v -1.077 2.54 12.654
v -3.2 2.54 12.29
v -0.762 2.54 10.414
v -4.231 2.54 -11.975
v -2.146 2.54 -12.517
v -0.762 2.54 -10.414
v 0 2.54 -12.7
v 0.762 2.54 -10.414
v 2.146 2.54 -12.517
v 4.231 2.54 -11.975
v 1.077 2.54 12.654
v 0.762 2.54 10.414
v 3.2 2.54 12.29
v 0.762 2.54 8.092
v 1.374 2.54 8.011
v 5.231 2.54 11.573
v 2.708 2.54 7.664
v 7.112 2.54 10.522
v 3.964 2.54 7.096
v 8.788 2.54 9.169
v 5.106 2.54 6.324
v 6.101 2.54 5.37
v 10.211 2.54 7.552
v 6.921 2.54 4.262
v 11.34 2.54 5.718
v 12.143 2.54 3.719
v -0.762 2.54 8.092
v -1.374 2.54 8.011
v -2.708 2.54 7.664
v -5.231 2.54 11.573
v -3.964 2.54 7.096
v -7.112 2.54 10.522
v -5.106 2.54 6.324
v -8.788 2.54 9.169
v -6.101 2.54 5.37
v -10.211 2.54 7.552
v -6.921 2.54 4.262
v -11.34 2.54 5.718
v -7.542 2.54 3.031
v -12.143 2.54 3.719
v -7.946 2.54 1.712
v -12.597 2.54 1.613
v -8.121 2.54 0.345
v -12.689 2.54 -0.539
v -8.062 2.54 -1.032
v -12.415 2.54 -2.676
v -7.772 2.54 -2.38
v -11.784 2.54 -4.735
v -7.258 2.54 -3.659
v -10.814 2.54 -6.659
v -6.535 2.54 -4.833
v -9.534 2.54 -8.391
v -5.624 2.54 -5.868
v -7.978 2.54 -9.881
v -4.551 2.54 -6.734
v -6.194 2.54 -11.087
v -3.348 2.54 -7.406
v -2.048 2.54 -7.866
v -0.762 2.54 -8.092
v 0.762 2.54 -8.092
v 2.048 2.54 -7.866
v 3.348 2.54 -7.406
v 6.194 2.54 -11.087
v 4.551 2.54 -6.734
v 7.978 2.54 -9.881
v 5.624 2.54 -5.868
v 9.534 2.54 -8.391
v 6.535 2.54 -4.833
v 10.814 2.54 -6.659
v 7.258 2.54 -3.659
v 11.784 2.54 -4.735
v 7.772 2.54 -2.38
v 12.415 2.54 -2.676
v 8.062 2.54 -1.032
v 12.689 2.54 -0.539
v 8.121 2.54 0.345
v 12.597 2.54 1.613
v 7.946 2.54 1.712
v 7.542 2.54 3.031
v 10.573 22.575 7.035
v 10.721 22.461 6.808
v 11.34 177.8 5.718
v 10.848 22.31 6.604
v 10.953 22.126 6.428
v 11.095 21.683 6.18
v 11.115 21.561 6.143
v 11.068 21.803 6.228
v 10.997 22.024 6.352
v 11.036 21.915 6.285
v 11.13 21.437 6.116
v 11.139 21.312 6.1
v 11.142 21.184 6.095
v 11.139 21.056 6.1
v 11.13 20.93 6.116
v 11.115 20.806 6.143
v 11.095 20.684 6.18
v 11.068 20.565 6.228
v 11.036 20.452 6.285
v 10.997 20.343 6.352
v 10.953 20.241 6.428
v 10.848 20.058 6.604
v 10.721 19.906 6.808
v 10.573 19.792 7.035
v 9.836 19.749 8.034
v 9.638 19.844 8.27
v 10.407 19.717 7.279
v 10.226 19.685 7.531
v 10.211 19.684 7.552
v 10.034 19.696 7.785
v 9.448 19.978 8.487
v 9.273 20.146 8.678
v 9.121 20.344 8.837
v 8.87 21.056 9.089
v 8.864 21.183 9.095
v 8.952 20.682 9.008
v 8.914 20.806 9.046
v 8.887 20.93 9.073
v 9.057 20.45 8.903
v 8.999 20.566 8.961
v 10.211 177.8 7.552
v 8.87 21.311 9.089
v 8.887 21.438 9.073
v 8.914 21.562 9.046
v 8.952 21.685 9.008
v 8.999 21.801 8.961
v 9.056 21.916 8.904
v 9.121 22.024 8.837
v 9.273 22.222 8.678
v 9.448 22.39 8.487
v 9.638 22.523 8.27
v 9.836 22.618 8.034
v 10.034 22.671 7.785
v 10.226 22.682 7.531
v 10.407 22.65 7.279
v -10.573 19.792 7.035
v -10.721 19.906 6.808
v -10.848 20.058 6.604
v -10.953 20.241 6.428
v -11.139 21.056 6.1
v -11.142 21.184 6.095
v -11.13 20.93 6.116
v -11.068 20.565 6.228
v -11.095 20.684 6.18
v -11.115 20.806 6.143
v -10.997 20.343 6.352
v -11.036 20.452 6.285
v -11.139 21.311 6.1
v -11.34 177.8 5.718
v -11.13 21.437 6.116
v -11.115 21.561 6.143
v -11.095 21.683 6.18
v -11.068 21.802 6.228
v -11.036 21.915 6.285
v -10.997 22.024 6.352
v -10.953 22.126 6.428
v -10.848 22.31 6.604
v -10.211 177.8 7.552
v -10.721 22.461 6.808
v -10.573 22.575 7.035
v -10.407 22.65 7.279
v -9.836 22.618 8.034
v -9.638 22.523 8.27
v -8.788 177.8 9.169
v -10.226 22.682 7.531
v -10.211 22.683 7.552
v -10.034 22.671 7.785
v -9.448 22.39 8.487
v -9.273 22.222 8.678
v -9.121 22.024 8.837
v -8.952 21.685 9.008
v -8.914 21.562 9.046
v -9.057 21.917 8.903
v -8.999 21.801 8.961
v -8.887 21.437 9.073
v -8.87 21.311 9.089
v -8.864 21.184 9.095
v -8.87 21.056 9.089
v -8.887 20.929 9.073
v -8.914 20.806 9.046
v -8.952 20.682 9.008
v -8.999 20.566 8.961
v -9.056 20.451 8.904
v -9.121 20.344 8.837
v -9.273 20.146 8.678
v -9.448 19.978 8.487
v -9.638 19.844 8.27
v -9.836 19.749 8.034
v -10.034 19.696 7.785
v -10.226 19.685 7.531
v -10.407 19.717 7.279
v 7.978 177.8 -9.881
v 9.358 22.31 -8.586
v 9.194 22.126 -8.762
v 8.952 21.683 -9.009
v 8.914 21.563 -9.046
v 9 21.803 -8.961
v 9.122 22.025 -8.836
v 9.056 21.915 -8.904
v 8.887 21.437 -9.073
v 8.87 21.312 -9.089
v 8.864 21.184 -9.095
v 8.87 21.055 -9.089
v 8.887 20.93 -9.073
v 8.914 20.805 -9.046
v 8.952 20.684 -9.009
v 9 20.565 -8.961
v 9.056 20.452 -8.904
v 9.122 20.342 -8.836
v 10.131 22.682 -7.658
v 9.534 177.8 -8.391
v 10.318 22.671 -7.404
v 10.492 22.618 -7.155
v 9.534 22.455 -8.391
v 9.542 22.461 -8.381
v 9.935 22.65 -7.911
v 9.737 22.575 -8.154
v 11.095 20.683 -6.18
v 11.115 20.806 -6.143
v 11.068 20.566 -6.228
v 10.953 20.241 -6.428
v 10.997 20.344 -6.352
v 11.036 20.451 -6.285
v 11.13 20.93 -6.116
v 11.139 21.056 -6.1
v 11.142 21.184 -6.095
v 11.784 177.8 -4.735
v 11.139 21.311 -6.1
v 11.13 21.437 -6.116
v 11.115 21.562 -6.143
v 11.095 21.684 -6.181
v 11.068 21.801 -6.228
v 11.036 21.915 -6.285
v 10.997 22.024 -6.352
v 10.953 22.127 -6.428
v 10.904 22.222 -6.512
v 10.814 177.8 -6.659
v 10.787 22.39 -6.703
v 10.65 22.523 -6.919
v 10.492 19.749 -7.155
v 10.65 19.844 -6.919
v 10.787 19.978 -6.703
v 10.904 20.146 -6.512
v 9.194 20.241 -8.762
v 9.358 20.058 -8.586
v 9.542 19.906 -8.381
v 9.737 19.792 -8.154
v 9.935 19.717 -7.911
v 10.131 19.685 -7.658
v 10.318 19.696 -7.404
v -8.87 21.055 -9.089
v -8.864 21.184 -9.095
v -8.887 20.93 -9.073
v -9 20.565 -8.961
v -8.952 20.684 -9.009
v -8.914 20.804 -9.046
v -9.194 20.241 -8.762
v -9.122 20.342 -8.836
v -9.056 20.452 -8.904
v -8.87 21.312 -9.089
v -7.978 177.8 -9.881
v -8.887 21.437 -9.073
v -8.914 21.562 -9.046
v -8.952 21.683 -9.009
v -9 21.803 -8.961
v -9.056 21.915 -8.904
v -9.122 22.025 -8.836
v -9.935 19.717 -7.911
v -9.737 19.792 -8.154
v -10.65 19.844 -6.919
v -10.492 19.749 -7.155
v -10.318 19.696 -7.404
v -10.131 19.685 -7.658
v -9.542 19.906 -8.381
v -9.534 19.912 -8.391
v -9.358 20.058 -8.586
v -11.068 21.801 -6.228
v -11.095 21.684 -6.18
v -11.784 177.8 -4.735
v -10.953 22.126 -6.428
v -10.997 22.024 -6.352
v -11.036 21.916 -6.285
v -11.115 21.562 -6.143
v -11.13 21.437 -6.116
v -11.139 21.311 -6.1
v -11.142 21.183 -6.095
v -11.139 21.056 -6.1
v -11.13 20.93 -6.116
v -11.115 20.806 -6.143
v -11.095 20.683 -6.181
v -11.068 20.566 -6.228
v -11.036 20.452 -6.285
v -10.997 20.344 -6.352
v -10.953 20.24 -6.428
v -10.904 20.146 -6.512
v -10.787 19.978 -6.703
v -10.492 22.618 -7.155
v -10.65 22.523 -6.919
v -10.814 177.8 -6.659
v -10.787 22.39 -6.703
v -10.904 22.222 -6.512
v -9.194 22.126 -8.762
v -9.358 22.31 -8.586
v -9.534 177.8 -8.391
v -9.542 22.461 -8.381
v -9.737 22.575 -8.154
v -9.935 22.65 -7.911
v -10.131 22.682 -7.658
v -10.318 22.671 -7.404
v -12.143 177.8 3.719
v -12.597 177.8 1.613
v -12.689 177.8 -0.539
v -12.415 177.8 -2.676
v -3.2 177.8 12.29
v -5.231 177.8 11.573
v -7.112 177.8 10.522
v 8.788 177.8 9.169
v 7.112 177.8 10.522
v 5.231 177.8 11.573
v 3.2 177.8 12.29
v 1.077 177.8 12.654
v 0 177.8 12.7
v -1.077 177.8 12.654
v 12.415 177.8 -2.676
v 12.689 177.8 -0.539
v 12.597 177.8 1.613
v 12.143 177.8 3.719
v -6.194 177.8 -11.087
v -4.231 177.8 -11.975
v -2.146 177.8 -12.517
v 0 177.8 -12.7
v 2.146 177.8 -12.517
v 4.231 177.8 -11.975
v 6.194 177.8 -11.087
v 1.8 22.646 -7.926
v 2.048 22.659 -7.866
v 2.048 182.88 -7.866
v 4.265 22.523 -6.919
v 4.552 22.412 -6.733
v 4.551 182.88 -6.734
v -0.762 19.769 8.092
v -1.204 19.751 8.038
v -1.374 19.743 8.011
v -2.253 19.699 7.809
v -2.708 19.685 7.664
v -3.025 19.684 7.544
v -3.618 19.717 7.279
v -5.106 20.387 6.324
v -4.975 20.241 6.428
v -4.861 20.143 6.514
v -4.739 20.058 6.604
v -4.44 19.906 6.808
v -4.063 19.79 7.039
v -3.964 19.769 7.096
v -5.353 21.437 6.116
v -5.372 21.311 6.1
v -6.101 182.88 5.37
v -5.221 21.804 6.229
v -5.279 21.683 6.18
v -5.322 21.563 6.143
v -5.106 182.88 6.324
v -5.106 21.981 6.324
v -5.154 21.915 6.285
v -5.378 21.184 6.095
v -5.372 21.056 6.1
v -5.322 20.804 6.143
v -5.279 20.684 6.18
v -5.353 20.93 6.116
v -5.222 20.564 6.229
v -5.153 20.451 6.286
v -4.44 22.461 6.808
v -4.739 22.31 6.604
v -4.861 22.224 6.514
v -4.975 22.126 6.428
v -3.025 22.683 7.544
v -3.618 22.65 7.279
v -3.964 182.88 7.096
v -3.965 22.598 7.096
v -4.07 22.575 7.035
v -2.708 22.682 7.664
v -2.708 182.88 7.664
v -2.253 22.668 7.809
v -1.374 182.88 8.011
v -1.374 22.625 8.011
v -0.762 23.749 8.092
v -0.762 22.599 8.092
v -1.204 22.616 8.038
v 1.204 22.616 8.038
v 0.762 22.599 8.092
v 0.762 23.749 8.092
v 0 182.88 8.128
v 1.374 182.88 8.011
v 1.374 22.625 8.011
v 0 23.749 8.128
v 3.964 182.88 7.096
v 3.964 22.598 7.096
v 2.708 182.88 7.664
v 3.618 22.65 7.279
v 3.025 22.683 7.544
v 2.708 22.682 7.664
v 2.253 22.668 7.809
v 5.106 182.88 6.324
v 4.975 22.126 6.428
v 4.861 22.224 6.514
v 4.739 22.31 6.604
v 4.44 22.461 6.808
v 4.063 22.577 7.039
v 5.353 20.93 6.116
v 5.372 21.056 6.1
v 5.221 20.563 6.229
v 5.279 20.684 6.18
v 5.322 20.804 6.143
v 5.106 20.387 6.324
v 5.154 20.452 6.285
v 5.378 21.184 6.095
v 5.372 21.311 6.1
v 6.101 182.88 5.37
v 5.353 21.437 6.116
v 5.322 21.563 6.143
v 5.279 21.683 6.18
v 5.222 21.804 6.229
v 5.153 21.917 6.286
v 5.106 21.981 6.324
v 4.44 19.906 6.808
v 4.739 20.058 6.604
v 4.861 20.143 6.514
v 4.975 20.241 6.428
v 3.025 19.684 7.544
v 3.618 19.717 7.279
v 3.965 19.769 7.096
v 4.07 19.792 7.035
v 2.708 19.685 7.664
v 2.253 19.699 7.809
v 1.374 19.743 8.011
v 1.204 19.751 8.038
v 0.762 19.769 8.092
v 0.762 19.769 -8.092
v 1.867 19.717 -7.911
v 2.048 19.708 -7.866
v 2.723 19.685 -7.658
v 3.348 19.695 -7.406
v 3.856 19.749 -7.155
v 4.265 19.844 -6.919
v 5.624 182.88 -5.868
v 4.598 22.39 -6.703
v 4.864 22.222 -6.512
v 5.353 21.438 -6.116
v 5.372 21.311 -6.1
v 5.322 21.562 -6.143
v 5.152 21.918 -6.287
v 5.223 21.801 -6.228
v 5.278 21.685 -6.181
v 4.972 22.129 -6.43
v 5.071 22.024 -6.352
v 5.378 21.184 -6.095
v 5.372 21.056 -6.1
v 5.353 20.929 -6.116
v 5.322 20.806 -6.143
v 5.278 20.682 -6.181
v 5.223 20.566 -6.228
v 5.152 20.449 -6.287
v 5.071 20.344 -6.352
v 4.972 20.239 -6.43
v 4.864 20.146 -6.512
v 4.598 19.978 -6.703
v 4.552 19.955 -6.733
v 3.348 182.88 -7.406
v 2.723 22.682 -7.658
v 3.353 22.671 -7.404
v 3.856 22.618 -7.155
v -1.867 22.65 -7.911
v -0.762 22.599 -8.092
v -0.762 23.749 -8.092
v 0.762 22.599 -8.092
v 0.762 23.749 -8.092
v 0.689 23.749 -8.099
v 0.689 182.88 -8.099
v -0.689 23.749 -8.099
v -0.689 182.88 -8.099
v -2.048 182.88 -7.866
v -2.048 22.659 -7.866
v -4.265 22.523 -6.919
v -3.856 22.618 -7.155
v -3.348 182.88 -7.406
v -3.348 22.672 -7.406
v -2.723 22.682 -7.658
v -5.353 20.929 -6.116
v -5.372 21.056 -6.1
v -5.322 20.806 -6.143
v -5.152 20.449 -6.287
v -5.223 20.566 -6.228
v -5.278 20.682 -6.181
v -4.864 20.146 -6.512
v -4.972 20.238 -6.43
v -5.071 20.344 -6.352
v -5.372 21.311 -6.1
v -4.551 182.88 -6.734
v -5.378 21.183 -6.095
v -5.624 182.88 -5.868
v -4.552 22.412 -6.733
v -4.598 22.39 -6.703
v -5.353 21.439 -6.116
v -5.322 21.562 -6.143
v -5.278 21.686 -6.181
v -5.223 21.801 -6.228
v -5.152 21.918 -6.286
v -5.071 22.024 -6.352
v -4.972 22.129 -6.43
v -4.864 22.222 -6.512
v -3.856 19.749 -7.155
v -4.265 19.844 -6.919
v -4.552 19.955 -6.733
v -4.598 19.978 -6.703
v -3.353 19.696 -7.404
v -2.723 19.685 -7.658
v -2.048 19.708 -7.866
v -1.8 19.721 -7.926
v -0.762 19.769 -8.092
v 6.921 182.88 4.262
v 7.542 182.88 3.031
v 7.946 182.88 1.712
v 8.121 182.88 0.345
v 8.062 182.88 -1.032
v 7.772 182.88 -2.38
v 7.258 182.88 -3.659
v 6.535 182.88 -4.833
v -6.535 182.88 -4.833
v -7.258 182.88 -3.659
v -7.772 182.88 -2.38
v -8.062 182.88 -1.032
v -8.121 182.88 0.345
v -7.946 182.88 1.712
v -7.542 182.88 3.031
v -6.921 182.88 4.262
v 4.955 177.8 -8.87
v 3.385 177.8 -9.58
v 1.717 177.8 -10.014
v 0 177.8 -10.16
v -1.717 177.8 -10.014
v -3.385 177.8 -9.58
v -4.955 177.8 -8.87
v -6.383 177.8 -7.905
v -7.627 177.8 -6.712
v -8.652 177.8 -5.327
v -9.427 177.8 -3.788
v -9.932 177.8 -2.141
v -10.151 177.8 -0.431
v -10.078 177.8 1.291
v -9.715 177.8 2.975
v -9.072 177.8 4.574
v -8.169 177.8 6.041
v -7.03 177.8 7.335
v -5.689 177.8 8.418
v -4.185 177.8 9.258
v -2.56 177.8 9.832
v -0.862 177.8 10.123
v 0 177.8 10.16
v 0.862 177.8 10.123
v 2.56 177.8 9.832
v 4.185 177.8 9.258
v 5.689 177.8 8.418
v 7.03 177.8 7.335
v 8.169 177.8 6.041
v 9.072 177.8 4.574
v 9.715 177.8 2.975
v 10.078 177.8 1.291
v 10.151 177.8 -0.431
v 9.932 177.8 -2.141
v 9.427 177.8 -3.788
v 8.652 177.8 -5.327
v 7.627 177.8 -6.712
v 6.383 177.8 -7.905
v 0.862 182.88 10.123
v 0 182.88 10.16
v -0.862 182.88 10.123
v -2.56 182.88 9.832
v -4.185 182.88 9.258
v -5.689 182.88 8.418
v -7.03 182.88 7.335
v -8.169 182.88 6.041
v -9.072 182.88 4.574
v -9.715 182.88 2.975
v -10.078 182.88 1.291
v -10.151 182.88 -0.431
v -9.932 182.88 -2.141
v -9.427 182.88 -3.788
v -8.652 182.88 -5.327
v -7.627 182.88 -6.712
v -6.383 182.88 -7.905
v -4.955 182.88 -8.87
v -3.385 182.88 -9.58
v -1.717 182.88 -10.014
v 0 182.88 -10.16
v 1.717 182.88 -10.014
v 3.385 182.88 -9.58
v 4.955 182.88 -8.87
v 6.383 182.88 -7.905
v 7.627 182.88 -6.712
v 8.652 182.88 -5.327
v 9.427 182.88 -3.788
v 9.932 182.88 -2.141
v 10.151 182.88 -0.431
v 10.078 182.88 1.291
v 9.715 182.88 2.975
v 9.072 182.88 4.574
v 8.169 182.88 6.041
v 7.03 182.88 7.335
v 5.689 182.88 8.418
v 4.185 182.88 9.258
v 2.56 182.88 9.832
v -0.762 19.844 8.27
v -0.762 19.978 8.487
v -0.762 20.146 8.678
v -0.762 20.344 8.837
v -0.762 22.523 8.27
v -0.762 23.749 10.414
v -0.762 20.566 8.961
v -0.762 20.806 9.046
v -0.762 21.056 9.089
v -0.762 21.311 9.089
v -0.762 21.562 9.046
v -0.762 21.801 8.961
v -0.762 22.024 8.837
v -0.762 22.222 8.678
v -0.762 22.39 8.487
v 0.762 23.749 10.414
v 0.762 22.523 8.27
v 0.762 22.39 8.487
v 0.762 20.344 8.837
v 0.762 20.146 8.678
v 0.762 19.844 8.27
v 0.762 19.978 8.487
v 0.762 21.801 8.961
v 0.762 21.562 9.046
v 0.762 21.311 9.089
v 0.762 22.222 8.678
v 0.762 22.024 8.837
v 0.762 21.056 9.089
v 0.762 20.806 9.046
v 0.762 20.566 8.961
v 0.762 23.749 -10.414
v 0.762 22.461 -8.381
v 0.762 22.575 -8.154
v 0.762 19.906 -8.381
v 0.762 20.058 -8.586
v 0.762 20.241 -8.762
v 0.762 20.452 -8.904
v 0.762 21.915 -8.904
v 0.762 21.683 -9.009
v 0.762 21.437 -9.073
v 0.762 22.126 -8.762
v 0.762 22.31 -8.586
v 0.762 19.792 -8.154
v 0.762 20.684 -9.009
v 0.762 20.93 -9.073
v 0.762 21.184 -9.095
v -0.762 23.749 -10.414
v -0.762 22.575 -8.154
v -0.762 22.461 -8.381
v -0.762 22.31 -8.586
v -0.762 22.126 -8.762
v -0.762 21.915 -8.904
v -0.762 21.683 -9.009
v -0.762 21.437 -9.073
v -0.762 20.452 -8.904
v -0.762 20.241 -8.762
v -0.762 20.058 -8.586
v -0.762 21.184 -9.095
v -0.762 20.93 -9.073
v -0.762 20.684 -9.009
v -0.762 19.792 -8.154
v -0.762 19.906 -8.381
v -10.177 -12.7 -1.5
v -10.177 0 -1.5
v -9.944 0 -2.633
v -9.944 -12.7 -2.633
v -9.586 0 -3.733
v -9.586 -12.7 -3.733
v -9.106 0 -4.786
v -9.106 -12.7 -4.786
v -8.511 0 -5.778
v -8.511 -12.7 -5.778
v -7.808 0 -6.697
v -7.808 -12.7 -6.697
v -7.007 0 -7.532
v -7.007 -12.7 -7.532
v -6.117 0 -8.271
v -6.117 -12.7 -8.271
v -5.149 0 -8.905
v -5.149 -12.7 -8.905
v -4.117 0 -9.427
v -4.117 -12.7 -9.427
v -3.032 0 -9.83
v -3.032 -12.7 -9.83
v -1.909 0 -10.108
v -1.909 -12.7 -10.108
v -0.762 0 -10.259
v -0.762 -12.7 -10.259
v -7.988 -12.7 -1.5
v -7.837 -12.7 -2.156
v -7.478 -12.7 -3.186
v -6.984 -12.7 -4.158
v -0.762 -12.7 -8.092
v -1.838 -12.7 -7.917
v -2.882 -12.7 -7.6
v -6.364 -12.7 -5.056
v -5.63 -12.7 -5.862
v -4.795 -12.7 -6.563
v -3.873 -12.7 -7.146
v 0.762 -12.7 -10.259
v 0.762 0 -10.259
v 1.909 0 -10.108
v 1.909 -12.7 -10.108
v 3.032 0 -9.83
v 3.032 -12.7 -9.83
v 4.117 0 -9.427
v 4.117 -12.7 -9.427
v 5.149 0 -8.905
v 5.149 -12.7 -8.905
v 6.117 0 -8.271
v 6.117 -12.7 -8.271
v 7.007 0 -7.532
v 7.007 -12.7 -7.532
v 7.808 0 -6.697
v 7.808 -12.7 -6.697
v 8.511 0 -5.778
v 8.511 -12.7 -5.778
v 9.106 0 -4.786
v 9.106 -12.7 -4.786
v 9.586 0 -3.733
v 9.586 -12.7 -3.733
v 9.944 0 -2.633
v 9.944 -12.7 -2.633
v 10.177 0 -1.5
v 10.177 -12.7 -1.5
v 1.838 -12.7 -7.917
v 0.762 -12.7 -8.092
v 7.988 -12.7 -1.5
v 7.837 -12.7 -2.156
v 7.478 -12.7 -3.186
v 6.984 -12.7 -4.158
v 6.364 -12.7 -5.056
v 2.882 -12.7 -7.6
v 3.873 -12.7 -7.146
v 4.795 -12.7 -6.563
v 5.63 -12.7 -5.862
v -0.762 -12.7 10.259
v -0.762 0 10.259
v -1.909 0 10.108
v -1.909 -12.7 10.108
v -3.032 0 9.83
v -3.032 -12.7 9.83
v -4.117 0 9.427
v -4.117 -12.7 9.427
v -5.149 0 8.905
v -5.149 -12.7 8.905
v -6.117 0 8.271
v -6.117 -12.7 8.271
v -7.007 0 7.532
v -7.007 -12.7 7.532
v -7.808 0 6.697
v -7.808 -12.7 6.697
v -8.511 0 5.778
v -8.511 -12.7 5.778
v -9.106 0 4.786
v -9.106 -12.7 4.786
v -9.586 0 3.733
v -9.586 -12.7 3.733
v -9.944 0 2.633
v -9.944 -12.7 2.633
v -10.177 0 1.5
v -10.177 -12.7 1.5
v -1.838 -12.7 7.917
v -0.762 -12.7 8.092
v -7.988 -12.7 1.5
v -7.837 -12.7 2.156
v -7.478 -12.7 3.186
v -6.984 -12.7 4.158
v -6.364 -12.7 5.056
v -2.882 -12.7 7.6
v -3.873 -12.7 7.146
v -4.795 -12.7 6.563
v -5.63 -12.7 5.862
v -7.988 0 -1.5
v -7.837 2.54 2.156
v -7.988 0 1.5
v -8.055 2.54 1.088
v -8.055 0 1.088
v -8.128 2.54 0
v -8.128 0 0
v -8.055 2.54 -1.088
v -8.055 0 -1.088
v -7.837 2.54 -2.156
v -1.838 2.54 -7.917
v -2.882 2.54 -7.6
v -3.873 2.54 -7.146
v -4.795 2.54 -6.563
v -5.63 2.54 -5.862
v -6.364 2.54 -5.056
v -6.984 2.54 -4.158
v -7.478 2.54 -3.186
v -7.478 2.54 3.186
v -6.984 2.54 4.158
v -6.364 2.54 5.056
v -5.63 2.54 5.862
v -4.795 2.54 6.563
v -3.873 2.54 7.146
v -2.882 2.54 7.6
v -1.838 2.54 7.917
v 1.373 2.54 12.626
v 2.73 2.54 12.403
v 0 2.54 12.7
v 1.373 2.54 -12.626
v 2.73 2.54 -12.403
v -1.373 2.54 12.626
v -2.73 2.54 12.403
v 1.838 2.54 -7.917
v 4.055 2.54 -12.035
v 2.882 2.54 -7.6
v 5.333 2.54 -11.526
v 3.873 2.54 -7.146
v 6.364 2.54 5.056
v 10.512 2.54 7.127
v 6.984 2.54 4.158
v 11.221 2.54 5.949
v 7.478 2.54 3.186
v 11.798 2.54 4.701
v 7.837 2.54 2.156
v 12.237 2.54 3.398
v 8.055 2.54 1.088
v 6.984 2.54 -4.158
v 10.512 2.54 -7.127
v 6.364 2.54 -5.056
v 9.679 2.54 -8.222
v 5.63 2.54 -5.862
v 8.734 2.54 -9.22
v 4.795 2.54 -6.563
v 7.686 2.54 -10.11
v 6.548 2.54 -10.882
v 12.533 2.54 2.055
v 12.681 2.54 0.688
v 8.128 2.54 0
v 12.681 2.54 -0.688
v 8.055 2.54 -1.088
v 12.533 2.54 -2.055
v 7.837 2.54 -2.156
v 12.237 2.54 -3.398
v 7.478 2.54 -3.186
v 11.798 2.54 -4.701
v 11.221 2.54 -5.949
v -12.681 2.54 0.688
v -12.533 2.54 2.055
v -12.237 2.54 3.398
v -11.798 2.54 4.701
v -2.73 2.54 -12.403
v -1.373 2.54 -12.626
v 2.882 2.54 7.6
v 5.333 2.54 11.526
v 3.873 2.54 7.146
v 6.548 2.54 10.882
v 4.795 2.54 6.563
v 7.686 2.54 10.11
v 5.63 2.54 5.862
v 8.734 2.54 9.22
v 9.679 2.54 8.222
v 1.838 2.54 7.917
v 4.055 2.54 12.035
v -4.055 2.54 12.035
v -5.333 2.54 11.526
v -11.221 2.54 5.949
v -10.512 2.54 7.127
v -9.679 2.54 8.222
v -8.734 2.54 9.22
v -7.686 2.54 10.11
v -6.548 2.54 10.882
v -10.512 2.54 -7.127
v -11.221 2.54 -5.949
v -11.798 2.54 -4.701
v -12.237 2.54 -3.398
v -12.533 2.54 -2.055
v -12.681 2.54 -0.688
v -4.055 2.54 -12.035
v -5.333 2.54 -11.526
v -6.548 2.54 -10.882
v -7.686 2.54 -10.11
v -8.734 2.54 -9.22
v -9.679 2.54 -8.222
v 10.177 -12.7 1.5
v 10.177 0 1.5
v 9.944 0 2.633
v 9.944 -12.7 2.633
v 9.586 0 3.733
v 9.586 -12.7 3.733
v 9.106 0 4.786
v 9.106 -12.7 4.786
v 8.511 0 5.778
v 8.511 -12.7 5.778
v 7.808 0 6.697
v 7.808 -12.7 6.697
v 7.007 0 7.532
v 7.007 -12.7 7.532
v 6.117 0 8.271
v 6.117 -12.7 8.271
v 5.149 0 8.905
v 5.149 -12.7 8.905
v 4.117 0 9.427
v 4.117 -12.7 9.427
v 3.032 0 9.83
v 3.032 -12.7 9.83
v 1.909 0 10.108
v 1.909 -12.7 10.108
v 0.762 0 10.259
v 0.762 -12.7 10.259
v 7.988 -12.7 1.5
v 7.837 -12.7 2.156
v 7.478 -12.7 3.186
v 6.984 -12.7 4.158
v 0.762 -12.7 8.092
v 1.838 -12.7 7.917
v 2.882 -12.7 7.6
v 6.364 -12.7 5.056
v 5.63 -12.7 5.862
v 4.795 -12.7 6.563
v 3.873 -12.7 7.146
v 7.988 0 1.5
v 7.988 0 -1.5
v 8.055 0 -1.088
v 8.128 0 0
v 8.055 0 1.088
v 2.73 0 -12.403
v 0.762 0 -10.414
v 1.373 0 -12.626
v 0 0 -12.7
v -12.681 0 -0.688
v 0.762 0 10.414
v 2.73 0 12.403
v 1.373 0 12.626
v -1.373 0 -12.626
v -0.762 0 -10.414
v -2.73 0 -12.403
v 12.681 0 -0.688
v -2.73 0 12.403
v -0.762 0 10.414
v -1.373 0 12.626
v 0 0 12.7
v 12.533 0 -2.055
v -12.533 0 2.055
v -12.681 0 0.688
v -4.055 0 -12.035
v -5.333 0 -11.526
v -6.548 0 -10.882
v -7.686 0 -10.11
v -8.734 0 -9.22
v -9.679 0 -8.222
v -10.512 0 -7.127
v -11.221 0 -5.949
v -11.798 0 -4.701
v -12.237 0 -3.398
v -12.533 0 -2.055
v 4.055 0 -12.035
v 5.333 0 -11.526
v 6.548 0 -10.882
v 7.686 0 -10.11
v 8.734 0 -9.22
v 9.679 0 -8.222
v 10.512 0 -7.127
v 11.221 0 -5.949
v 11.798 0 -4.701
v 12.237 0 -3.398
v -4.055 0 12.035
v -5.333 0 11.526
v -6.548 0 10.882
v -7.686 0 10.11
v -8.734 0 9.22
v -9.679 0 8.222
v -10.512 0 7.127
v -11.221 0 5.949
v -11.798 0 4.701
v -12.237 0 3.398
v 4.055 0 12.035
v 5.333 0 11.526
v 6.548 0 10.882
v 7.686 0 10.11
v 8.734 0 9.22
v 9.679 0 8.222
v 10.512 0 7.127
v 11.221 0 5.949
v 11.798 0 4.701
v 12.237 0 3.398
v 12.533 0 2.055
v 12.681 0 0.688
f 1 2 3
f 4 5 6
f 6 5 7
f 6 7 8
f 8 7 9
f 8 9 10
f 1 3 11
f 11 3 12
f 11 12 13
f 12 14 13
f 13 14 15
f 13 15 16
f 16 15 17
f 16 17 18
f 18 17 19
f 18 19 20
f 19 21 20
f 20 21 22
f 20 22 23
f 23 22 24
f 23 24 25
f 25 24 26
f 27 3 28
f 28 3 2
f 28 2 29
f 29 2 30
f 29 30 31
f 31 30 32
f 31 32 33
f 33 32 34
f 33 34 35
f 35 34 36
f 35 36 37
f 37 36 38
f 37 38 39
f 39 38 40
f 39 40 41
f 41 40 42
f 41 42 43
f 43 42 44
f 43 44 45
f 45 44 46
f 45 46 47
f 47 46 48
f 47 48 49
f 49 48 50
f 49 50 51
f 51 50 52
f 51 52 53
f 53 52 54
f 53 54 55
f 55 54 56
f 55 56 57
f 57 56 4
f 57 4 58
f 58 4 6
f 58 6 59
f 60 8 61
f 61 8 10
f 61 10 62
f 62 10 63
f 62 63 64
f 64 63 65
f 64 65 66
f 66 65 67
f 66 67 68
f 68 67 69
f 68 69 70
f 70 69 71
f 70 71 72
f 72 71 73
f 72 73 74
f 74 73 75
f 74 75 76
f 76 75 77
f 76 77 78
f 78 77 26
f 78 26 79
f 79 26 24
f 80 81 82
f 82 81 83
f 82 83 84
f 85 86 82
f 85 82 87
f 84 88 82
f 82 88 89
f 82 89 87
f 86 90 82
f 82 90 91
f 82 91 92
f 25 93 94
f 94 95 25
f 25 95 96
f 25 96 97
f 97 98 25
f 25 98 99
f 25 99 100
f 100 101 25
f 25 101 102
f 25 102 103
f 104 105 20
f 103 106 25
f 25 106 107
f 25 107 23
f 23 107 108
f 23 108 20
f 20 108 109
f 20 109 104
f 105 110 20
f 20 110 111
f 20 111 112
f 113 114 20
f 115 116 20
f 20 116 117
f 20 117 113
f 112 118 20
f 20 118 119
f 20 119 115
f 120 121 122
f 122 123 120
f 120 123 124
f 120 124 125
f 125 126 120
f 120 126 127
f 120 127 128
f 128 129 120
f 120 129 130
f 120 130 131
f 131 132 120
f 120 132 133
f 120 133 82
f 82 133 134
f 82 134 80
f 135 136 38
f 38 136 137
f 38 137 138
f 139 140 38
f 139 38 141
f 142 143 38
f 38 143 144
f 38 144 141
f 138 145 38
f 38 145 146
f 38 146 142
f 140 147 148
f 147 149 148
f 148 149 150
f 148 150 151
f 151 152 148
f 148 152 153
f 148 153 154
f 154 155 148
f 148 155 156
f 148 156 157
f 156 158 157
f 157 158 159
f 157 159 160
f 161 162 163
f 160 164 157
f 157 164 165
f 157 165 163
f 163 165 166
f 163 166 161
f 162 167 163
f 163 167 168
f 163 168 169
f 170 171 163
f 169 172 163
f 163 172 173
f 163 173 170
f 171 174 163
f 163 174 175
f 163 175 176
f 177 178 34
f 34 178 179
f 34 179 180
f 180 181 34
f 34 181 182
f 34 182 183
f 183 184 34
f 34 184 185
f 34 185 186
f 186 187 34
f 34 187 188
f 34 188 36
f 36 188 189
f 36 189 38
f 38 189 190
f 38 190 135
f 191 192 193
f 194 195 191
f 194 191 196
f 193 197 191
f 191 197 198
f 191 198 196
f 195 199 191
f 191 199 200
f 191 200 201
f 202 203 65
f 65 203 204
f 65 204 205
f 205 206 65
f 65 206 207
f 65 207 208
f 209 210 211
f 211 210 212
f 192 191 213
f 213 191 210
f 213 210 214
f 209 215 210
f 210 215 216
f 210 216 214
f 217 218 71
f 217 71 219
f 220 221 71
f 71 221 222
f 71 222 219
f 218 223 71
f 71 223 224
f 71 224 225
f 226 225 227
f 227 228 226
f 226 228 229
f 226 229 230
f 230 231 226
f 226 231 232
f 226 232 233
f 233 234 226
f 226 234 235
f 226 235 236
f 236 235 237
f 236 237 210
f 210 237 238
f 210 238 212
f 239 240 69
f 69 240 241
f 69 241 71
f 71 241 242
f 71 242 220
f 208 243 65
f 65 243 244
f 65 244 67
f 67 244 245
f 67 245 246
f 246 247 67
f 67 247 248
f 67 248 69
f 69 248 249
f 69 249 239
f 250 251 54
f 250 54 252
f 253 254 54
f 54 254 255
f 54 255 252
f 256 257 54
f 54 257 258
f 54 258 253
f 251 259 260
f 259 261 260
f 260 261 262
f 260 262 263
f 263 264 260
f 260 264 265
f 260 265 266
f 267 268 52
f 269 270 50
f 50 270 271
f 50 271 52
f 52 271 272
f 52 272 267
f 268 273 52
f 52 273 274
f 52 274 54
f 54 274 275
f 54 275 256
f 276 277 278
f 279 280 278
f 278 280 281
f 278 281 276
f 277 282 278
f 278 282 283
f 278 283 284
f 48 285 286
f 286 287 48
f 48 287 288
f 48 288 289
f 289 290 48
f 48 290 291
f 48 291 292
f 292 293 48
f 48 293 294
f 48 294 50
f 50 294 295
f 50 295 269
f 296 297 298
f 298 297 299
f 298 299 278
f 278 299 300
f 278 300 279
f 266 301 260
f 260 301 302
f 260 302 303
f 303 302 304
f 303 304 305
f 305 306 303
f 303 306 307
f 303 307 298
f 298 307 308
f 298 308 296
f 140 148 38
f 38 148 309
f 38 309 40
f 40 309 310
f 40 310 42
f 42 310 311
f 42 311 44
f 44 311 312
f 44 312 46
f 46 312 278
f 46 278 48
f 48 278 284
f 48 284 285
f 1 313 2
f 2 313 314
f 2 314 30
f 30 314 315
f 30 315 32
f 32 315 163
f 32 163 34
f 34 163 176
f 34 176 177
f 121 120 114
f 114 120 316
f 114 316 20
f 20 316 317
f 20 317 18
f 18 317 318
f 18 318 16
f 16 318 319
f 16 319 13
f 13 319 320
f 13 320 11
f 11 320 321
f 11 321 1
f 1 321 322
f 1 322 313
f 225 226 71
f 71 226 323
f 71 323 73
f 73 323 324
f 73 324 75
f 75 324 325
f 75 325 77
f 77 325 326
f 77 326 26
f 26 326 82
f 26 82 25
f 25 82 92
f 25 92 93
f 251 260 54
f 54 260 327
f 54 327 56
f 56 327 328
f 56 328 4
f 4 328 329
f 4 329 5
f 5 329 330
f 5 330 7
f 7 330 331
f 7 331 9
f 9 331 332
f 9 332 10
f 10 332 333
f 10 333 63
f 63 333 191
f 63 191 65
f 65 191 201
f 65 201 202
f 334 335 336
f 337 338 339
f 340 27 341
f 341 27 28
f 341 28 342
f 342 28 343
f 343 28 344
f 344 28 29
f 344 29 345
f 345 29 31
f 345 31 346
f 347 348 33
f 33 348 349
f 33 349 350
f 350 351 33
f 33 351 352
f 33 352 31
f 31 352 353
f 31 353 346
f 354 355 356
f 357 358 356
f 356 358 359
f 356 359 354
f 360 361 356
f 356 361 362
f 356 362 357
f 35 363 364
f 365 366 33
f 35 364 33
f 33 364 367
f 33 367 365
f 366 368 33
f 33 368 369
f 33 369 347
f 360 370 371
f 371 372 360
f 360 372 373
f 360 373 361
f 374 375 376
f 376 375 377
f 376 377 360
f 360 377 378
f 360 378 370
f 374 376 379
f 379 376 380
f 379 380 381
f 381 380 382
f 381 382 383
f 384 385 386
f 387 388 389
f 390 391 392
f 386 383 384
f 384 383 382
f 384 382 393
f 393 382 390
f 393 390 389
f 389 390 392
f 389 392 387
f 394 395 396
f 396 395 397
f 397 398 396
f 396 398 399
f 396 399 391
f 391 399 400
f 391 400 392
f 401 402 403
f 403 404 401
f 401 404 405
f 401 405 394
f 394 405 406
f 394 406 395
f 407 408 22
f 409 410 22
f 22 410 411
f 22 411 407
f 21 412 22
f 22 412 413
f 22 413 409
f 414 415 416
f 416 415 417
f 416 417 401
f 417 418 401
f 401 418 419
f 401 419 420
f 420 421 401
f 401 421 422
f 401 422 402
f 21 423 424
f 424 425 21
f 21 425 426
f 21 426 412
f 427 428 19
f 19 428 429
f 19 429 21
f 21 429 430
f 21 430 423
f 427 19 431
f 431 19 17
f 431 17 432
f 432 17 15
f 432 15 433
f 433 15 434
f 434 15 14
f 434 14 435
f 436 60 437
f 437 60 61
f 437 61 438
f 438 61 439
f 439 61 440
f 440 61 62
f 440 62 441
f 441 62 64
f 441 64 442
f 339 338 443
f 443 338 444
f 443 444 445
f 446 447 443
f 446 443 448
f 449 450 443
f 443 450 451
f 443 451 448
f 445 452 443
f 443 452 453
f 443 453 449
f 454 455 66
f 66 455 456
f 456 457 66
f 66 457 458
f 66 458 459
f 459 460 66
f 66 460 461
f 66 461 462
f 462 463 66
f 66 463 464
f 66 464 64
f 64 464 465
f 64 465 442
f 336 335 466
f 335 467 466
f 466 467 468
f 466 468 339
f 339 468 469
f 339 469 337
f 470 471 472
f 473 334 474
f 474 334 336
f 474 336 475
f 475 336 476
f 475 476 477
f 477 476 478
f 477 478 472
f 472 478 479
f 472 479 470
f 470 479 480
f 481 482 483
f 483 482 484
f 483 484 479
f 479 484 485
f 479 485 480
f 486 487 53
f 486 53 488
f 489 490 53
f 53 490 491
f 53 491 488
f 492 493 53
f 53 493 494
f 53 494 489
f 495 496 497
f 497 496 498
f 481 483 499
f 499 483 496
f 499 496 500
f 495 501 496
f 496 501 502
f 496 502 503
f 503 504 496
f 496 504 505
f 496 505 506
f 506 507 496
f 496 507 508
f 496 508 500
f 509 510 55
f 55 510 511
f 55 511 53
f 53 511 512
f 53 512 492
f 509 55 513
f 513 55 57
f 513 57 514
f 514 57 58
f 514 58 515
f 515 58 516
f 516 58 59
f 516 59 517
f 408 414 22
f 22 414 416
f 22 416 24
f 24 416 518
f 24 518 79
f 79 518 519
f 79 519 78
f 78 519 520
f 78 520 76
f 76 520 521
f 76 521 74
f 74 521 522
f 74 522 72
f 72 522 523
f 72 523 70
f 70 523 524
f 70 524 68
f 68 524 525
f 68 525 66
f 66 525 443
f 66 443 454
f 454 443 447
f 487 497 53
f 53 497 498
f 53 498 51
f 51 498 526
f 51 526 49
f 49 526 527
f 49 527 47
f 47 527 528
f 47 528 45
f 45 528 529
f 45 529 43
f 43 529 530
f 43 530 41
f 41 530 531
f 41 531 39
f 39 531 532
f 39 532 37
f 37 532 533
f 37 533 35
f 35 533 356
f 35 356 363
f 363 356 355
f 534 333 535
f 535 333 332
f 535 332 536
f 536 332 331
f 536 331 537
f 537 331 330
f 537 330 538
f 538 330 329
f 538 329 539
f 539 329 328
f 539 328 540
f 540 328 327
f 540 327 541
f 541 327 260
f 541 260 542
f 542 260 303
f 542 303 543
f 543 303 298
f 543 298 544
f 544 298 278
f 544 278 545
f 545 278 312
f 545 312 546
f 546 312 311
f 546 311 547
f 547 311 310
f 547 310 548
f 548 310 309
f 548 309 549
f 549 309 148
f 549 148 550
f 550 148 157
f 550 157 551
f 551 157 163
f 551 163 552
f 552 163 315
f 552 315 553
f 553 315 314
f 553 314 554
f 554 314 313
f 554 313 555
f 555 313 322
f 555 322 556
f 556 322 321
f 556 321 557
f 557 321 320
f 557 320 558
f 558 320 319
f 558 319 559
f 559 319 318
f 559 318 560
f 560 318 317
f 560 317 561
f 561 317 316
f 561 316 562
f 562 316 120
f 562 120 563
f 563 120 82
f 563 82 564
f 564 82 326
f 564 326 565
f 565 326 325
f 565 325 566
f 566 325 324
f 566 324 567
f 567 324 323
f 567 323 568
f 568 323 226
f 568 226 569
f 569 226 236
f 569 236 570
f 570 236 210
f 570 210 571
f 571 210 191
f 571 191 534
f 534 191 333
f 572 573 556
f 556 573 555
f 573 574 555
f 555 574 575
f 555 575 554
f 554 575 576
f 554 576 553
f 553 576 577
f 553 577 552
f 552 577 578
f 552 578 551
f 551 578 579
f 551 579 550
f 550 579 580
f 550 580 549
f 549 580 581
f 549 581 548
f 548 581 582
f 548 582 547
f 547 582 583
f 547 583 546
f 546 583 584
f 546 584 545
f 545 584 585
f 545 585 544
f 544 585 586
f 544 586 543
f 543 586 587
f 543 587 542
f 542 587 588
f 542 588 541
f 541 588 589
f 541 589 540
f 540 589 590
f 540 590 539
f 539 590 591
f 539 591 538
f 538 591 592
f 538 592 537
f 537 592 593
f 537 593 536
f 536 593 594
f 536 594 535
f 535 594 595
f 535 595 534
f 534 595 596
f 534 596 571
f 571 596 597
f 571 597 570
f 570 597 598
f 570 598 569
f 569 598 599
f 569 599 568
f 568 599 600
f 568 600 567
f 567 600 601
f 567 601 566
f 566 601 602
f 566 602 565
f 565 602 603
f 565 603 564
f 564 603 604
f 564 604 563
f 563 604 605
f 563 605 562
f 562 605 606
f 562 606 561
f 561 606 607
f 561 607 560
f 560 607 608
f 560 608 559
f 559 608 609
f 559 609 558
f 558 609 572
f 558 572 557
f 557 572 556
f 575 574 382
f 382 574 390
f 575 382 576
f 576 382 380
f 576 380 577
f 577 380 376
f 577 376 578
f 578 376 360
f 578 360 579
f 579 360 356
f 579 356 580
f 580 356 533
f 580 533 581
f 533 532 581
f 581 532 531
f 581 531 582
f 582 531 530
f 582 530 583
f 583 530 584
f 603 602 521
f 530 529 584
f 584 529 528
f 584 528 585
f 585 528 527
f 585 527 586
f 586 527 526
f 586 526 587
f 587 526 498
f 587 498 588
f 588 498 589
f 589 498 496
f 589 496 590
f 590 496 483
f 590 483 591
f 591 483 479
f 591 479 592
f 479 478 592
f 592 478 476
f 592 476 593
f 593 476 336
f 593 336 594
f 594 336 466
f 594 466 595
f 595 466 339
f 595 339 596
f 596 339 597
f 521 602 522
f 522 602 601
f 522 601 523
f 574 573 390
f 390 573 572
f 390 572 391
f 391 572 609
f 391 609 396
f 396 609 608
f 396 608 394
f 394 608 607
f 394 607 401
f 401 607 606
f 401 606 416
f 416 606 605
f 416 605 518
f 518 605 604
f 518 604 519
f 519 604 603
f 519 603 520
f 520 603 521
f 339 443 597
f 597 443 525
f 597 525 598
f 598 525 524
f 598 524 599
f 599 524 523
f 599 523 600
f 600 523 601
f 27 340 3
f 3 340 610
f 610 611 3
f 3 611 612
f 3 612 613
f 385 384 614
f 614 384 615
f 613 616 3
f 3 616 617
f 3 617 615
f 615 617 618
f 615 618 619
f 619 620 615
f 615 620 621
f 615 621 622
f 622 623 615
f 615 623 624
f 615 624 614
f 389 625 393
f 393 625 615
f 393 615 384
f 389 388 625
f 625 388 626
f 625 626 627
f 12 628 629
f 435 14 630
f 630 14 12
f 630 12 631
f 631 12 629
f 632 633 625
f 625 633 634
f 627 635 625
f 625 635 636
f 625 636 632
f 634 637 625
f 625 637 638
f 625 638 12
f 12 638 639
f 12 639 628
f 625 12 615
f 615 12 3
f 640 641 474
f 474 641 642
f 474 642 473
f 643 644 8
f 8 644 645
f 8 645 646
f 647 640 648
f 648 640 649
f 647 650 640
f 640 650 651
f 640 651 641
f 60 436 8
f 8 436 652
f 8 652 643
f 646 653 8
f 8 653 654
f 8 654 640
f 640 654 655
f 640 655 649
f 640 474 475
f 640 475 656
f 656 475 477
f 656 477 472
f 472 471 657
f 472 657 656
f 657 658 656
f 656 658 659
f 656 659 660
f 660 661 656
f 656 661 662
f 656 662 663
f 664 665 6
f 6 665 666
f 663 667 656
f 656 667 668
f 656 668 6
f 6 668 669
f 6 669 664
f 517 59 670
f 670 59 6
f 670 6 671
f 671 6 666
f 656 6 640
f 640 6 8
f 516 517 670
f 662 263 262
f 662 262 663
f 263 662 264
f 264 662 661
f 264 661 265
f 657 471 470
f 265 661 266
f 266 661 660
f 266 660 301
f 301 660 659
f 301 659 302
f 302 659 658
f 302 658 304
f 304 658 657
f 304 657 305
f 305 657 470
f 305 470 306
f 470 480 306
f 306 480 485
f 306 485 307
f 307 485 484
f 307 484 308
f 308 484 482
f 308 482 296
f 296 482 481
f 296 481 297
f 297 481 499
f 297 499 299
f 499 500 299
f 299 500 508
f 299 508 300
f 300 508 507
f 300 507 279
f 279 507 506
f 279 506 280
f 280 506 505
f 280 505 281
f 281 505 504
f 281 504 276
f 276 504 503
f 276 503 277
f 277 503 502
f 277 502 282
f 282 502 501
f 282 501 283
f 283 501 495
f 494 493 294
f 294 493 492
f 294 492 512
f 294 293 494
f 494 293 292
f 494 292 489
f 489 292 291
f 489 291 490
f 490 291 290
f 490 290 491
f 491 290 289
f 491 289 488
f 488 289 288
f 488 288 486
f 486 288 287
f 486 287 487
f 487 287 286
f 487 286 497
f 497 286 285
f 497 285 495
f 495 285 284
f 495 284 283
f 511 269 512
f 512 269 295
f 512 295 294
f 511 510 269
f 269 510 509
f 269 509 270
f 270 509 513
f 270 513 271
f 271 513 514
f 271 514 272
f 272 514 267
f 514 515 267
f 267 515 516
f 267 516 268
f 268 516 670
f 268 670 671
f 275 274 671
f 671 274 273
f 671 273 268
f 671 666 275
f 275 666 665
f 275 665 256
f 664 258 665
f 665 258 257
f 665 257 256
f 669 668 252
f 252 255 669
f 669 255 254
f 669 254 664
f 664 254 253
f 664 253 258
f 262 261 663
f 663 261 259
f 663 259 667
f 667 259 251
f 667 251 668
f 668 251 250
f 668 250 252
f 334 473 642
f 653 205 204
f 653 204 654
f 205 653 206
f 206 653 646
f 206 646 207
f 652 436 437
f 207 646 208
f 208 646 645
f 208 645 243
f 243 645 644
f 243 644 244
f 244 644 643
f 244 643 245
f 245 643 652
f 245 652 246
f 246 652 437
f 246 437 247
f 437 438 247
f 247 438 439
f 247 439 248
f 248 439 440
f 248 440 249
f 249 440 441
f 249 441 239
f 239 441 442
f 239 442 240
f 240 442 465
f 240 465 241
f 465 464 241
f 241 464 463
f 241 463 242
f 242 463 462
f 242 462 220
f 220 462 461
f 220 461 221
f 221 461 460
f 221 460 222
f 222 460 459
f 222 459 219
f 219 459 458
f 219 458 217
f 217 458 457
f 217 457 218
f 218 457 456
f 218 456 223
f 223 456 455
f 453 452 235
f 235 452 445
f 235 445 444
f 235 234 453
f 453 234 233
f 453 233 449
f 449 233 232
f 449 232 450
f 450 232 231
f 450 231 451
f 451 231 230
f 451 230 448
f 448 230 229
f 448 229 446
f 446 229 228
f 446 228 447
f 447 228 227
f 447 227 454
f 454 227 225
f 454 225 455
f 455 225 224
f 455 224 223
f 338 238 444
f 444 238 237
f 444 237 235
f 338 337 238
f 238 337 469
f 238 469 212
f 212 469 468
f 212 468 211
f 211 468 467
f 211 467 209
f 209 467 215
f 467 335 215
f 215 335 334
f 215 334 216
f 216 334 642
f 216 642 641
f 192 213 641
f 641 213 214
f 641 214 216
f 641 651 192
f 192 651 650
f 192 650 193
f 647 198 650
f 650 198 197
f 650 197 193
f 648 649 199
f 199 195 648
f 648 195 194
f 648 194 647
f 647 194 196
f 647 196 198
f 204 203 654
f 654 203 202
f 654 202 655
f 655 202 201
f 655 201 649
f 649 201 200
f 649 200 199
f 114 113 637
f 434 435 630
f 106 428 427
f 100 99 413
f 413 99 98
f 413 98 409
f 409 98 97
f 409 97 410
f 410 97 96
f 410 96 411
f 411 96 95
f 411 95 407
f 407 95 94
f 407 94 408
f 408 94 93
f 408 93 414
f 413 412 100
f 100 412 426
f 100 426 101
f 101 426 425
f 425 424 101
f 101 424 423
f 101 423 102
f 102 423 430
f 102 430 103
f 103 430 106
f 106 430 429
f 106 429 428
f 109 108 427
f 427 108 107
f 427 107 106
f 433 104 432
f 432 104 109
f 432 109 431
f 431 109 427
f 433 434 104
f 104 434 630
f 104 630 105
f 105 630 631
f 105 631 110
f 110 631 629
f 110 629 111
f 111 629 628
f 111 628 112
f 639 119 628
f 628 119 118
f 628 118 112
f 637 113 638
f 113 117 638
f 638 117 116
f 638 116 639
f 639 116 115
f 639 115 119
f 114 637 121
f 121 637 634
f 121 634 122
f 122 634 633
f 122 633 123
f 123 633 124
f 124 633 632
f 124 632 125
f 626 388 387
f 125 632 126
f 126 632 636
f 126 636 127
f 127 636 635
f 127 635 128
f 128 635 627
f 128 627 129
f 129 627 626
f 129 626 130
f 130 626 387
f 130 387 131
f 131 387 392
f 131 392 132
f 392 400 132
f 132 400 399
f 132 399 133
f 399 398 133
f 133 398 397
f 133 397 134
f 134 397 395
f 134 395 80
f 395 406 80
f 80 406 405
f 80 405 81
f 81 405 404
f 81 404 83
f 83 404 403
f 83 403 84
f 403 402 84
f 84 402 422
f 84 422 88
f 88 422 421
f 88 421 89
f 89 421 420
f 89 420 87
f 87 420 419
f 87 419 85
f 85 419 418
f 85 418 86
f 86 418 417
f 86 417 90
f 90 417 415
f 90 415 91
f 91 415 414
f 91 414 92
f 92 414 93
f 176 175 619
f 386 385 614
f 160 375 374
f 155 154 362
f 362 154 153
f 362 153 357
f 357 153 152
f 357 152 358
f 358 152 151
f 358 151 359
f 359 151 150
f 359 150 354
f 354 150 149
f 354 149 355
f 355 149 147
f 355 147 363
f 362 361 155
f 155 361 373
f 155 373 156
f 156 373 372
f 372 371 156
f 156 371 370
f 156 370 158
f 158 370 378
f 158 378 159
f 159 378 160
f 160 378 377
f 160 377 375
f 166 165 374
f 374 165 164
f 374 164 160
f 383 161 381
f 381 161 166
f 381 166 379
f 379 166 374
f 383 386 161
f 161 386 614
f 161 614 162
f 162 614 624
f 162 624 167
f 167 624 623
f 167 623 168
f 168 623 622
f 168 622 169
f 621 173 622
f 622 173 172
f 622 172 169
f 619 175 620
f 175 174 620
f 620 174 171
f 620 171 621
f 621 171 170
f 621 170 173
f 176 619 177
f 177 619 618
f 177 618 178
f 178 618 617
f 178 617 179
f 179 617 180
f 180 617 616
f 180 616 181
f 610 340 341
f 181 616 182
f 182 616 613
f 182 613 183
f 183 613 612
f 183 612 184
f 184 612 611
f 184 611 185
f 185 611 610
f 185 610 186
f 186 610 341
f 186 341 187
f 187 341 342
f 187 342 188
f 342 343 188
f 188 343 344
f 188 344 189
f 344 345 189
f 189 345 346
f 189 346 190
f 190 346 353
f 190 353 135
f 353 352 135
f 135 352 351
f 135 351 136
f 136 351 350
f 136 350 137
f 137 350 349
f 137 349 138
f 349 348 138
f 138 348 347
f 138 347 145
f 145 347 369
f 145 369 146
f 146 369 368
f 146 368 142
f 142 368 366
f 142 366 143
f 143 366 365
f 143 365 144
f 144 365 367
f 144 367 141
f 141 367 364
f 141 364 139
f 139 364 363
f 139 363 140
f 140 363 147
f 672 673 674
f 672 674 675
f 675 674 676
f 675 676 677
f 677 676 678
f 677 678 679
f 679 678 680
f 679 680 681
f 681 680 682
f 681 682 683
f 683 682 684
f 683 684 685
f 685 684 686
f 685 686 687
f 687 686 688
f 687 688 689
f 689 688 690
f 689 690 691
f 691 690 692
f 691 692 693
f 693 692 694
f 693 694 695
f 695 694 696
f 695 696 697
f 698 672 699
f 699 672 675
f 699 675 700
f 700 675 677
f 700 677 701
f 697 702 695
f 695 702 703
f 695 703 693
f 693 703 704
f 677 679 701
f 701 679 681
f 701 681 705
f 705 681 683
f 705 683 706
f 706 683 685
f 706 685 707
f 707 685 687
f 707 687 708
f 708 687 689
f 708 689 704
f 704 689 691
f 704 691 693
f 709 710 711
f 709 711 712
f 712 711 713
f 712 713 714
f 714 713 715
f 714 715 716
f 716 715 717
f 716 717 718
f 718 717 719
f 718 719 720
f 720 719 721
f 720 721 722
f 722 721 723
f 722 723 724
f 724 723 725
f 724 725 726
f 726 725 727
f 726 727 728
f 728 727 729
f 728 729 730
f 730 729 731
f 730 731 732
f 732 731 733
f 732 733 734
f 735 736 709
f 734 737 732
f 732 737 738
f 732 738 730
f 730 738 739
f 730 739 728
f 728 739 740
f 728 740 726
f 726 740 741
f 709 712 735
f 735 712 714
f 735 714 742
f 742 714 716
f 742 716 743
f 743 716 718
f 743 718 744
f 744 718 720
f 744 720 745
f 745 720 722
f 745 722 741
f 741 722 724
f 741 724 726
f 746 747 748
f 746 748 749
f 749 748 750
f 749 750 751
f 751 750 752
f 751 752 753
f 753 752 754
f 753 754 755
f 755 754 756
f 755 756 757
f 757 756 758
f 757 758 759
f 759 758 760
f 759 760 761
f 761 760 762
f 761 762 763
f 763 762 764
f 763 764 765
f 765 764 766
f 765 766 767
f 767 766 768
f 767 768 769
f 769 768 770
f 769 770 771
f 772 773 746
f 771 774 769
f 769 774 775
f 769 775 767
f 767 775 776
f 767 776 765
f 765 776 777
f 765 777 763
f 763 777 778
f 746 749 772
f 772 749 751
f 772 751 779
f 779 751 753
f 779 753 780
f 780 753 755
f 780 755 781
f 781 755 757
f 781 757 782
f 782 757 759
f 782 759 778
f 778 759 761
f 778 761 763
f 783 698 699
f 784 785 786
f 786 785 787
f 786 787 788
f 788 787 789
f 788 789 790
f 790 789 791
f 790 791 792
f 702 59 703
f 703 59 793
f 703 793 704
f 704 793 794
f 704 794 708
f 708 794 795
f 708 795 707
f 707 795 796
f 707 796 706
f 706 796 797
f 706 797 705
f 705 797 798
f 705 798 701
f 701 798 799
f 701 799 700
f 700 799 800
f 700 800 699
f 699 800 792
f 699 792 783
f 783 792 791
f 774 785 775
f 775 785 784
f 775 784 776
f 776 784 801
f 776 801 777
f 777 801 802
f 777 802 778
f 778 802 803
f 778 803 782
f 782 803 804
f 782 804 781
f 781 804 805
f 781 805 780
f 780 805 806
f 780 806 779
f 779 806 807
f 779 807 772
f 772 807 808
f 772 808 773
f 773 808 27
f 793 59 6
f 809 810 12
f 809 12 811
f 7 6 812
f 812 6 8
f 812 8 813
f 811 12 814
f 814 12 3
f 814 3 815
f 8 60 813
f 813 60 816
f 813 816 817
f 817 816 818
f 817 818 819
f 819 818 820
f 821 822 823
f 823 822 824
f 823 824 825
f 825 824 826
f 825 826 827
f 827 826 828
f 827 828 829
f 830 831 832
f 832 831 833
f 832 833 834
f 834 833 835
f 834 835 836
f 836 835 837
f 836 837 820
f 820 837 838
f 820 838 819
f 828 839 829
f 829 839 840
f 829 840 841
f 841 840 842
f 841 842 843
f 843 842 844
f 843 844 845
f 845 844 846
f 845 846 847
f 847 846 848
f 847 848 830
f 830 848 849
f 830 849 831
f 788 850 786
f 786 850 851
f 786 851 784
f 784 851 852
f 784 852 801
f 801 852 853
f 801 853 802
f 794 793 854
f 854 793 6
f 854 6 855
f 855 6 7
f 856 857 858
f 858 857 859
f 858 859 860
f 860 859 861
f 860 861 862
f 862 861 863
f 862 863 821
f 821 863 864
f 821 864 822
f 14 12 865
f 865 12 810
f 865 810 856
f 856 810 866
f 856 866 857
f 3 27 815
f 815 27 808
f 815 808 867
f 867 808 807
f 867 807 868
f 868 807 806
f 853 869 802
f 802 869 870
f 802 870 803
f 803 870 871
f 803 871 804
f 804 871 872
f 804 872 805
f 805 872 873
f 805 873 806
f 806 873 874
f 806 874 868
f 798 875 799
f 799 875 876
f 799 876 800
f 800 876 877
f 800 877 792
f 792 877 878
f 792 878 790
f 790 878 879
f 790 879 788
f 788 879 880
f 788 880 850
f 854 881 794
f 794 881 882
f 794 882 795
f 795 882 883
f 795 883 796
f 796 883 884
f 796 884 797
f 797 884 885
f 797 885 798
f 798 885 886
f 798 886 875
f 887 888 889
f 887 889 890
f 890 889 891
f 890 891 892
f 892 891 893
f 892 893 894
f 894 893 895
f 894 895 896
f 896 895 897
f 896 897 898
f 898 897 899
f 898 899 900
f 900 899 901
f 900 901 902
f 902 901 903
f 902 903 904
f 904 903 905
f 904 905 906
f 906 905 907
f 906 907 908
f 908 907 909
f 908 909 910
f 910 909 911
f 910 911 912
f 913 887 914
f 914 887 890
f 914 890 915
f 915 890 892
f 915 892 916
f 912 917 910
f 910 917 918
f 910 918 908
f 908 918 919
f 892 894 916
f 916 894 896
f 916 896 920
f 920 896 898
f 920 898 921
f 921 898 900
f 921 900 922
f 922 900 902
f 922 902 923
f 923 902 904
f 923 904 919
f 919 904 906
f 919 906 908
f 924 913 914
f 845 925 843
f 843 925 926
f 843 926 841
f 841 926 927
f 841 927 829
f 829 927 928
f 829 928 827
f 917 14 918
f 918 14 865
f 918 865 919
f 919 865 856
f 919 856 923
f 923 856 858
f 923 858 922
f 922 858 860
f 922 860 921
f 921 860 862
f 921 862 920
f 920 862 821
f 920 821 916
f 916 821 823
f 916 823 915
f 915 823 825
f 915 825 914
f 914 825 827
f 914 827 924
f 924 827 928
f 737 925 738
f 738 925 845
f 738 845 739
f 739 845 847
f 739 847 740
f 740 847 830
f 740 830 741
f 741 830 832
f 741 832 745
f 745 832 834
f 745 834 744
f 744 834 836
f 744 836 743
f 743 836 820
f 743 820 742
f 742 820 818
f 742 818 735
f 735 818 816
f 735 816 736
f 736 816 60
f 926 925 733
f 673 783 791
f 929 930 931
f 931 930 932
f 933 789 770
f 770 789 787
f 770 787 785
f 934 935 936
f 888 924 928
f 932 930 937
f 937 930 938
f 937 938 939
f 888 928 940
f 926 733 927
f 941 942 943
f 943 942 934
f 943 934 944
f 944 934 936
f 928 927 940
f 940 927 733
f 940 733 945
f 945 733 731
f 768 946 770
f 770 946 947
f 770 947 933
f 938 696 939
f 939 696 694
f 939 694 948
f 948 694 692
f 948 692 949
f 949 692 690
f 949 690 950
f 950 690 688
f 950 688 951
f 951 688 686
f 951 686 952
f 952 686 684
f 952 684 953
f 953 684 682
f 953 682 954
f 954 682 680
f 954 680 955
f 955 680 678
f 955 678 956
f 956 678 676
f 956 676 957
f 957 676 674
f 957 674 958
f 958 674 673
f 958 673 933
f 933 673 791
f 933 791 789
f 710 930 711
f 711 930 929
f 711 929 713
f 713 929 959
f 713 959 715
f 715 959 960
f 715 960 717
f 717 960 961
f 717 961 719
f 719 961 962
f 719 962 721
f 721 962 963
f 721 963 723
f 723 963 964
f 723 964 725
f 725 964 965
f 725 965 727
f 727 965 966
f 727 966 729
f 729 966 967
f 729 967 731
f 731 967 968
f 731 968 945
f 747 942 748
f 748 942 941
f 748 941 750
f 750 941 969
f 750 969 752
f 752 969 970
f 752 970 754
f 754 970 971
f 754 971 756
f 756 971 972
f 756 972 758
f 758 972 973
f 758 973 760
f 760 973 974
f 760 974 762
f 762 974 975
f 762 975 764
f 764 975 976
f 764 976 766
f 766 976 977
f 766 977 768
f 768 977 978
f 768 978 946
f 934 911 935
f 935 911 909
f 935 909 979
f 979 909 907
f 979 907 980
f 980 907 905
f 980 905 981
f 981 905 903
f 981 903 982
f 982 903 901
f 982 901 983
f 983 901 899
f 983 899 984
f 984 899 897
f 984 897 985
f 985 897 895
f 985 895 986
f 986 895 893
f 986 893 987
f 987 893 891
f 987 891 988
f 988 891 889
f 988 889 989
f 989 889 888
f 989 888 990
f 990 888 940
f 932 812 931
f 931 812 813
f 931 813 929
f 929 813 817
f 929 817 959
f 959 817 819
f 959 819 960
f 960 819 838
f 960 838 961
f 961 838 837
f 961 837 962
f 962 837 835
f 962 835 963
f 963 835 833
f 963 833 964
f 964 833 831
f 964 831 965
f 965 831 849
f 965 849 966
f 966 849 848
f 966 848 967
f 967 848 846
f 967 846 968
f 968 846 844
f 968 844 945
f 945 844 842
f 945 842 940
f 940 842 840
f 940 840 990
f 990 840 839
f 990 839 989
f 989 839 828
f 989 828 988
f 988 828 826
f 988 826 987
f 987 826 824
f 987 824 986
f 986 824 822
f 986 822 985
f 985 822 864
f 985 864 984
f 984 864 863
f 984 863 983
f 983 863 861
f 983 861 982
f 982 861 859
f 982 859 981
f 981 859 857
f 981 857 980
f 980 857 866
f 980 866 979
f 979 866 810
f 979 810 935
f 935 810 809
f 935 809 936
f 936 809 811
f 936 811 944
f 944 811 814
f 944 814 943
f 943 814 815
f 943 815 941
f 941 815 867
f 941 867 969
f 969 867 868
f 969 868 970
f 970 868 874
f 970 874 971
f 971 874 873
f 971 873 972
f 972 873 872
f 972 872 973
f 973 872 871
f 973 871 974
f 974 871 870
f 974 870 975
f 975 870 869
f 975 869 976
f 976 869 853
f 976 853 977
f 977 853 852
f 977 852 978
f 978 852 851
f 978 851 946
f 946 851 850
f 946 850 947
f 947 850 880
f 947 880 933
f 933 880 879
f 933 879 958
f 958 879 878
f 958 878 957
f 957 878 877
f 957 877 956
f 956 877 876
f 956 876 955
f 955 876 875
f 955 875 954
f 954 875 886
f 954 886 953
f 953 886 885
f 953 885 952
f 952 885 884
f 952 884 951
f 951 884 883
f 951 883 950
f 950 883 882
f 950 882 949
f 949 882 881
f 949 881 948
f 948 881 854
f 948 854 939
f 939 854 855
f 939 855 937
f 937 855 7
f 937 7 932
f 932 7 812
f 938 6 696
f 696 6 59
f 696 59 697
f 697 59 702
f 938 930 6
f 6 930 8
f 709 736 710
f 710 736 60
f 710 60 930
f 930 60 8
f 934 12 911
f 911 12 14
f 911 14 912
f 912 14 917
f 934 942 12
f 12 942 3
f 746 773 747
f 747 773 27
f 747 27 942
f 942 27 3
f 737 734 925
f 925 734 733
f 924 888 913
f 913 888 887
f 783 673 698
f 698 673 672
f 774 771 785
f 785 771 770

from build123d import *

# Parameters (mm, degrees)
SKETCH1_R               = 12.7
BOSS_EXTRUDE1_DEPTH     = 177.8
SKETCH4_R               = 10.16
BOSS_EXTRUDE2_DEPTH     = 5.08
SKETCH5_R               = 8.128
CUT_EXTRUDE1_DEPTH      = 184.759828036
SKETCH6_R               = 10.287
SKETCH6_R_2             = 8.128
BOSS_EXTRUDE3_DEPTH     = 12.7
CUT_EXTRUDE2_DEPTH      = 0.762
CUT_EXTRUDE2_DEPTH_BACK = 0.762
SKETCH10_W              = 20.828
SKETCH10_H              = 59.309
SKETCH10_R              = 1.5
CUT_EXTRUDE3_DEPTH      = 184.759828136
CUT_EXTRUDE3_DEPTH_BACK = 184.759828136
SKETCH11_R              = 1.5
CUT_EXTRUDE4_DEPTH      = 197.402944082
CUT_EXTRUDE4_DEPTH_BACK = 12.7
SKETCH12_W              = 50.8
SKETCH12_H              = 3


with BuildPart() as part:
    # Sketch1 → Boss-Extrude1 (new body)
    with BuildSketch(Plane(origin=(0, 0, 0), x_dir=(1, 0, 0), z_dir=(0, 1, 0))):
        with Locations(Location((0, 0, 0), (0, 0, 270))):
            Circle(SKETCH1_R)
    extrude(amount=BOSS_EXTRUDE1_DEPTH)

    # Sketch4 → Boss-Extrude2 (add)
    with BuildSketch(Plane(origin=(0, 177.8, 0), x_dir=(1, 0, 0), z_dir=(0, 1, 0))):
        with Locations(Location((0, 0, 0), (0, 0, 270))):
            Circle(SKETCH4_R)
    extrude(amount=BOSS_EXTRUDE2_DEPTH)

    # Sketch5 → Cut-Extrude1 (cut, through all)
    with BuildSketch(Plane(origin=(0, 182.88, 0), x_dir=(1, 0, 0), z_dir=(0, 1, 0))):
        with Locations(Location((0, 0, 0), (0, 0, 270))):
            Circle(SKETCH5_R)
    extrude(amount=-CUT_EXTRUDE1_DEPTH, mode=Mode.SUBTRACT)

    # Sketch6 → Boss-Extrude3 (add)
    with BuildSketch(Plane.XZ):
        with Locations(Location((0, 0, 0), (0, 0, 90))):
            Circle(SKETCH6_R)
        with Locations(Location((0, 0, 0), (0, 0, 90))):
            Circle(SKETCH6_R_2, mode=Mode.SUBTRACT)
    extrude(amount=BOSS_EXTRUDE3_DEPTH)


with BuildPart() as body_2:
    # Split1: the piece on the far side of the plane
    add(part.part)
    split(bisect_by=Plane(origin=(0, 2.54, 0), x_dir=(0, 0, -1), z_dir=(0, -1, 0)), keep=Keep.BOTTOM)


with BuildPart() as part_1:
    add(part.part)

    # Split1
    split(bisect_by=Plane(origin=(0, 2.54, 0), x_dir=(0, 0, -1), z_dir=(0, -1, 0)), keep=Keep.TOP)


with BuildPart() as cut_extrude2_tool:
    # Sketch10 → Cut-Extrude2 (new, two sides: drawn at the far end of the back side and taken through both)
    with BuildSketch(Plane(origin=(0, 0, 0), x_dir=(0, 0, -1), z_dir=(1, 0, 0)).offset(-CUT_EXTRUDE2_DEPTH_BACK)):
        with Locations((0, -5.9055)):
            Rectangle(SKETCH10_W, SKETCH10_H)
        with Locations((7.5946, 21.1836)):
            Circle(SKETCH10_R, mode=Mode.SUBTRACT)
        with Locations((-7.5946, 21.1836)):
            Circle(SKETCH10_R, mode=Mode.SUBTRACT)
    extrude(amount=CUT_EXTRUDE2_DEPTH + CUT_EXTRUDE2_DEPTH_BACK)


with BuildPart() as part_2:
    add(part_1.part)

    # Cut-Extrude2: cut by cut_extrude2_tool
    add(cut_extrude2_tool.part, mode=Mode.SUBTRACT)

    # Sketch12 → Cut-Extrude4 (cut, two sides: drawn at the far end of the back side and taken through both)
    with BuildSketch(Plane.XZ.offset(12.7).offset(-CUT_EXTRUDE4_DEPTH_BACK)):
        Rectangle(SKETCH12_W, SKETCH12_H)
    extrude(amount=CUT_EXTRUDE4_DEPTH + CUT_EXTRUDE4_DEPTH_BACK, mode=Mode.SUBTRACT)


with BuildPart() as body_2_1:
    add(body_2.part)

    # Cut-Extrude2: cut by cut_extrude2_tool
    add(cut_extrude2_tool.part, mode=Mode.SUBTRACT)

    # Sketch11 → Cut-Extrude3 (cut, two sides: drawn at the far end of the back side and taken through both)
    with BuildSketch(Plane(origin=(0, 0, 0), x_dir=(0, 0, -1), z_dir=(1, 0, 0)).offset(-CUT_EXTRUDE3_DEPTH_BACK)):
        with Locations((7.5946, 21.1836)):
            Circle(SKETCH11_R)
        with Locations((-7.5946, 21.1836)):
            Circle(SKETCH11_R)
    extrude(amount=CUT_EXTRUDE3_DEPTH + CUT_EXTRUDE3_DEPTH_BACK, mode=Mode.SUBTRACT)


solid = Compound([part_2.part, body_2_1.part])
